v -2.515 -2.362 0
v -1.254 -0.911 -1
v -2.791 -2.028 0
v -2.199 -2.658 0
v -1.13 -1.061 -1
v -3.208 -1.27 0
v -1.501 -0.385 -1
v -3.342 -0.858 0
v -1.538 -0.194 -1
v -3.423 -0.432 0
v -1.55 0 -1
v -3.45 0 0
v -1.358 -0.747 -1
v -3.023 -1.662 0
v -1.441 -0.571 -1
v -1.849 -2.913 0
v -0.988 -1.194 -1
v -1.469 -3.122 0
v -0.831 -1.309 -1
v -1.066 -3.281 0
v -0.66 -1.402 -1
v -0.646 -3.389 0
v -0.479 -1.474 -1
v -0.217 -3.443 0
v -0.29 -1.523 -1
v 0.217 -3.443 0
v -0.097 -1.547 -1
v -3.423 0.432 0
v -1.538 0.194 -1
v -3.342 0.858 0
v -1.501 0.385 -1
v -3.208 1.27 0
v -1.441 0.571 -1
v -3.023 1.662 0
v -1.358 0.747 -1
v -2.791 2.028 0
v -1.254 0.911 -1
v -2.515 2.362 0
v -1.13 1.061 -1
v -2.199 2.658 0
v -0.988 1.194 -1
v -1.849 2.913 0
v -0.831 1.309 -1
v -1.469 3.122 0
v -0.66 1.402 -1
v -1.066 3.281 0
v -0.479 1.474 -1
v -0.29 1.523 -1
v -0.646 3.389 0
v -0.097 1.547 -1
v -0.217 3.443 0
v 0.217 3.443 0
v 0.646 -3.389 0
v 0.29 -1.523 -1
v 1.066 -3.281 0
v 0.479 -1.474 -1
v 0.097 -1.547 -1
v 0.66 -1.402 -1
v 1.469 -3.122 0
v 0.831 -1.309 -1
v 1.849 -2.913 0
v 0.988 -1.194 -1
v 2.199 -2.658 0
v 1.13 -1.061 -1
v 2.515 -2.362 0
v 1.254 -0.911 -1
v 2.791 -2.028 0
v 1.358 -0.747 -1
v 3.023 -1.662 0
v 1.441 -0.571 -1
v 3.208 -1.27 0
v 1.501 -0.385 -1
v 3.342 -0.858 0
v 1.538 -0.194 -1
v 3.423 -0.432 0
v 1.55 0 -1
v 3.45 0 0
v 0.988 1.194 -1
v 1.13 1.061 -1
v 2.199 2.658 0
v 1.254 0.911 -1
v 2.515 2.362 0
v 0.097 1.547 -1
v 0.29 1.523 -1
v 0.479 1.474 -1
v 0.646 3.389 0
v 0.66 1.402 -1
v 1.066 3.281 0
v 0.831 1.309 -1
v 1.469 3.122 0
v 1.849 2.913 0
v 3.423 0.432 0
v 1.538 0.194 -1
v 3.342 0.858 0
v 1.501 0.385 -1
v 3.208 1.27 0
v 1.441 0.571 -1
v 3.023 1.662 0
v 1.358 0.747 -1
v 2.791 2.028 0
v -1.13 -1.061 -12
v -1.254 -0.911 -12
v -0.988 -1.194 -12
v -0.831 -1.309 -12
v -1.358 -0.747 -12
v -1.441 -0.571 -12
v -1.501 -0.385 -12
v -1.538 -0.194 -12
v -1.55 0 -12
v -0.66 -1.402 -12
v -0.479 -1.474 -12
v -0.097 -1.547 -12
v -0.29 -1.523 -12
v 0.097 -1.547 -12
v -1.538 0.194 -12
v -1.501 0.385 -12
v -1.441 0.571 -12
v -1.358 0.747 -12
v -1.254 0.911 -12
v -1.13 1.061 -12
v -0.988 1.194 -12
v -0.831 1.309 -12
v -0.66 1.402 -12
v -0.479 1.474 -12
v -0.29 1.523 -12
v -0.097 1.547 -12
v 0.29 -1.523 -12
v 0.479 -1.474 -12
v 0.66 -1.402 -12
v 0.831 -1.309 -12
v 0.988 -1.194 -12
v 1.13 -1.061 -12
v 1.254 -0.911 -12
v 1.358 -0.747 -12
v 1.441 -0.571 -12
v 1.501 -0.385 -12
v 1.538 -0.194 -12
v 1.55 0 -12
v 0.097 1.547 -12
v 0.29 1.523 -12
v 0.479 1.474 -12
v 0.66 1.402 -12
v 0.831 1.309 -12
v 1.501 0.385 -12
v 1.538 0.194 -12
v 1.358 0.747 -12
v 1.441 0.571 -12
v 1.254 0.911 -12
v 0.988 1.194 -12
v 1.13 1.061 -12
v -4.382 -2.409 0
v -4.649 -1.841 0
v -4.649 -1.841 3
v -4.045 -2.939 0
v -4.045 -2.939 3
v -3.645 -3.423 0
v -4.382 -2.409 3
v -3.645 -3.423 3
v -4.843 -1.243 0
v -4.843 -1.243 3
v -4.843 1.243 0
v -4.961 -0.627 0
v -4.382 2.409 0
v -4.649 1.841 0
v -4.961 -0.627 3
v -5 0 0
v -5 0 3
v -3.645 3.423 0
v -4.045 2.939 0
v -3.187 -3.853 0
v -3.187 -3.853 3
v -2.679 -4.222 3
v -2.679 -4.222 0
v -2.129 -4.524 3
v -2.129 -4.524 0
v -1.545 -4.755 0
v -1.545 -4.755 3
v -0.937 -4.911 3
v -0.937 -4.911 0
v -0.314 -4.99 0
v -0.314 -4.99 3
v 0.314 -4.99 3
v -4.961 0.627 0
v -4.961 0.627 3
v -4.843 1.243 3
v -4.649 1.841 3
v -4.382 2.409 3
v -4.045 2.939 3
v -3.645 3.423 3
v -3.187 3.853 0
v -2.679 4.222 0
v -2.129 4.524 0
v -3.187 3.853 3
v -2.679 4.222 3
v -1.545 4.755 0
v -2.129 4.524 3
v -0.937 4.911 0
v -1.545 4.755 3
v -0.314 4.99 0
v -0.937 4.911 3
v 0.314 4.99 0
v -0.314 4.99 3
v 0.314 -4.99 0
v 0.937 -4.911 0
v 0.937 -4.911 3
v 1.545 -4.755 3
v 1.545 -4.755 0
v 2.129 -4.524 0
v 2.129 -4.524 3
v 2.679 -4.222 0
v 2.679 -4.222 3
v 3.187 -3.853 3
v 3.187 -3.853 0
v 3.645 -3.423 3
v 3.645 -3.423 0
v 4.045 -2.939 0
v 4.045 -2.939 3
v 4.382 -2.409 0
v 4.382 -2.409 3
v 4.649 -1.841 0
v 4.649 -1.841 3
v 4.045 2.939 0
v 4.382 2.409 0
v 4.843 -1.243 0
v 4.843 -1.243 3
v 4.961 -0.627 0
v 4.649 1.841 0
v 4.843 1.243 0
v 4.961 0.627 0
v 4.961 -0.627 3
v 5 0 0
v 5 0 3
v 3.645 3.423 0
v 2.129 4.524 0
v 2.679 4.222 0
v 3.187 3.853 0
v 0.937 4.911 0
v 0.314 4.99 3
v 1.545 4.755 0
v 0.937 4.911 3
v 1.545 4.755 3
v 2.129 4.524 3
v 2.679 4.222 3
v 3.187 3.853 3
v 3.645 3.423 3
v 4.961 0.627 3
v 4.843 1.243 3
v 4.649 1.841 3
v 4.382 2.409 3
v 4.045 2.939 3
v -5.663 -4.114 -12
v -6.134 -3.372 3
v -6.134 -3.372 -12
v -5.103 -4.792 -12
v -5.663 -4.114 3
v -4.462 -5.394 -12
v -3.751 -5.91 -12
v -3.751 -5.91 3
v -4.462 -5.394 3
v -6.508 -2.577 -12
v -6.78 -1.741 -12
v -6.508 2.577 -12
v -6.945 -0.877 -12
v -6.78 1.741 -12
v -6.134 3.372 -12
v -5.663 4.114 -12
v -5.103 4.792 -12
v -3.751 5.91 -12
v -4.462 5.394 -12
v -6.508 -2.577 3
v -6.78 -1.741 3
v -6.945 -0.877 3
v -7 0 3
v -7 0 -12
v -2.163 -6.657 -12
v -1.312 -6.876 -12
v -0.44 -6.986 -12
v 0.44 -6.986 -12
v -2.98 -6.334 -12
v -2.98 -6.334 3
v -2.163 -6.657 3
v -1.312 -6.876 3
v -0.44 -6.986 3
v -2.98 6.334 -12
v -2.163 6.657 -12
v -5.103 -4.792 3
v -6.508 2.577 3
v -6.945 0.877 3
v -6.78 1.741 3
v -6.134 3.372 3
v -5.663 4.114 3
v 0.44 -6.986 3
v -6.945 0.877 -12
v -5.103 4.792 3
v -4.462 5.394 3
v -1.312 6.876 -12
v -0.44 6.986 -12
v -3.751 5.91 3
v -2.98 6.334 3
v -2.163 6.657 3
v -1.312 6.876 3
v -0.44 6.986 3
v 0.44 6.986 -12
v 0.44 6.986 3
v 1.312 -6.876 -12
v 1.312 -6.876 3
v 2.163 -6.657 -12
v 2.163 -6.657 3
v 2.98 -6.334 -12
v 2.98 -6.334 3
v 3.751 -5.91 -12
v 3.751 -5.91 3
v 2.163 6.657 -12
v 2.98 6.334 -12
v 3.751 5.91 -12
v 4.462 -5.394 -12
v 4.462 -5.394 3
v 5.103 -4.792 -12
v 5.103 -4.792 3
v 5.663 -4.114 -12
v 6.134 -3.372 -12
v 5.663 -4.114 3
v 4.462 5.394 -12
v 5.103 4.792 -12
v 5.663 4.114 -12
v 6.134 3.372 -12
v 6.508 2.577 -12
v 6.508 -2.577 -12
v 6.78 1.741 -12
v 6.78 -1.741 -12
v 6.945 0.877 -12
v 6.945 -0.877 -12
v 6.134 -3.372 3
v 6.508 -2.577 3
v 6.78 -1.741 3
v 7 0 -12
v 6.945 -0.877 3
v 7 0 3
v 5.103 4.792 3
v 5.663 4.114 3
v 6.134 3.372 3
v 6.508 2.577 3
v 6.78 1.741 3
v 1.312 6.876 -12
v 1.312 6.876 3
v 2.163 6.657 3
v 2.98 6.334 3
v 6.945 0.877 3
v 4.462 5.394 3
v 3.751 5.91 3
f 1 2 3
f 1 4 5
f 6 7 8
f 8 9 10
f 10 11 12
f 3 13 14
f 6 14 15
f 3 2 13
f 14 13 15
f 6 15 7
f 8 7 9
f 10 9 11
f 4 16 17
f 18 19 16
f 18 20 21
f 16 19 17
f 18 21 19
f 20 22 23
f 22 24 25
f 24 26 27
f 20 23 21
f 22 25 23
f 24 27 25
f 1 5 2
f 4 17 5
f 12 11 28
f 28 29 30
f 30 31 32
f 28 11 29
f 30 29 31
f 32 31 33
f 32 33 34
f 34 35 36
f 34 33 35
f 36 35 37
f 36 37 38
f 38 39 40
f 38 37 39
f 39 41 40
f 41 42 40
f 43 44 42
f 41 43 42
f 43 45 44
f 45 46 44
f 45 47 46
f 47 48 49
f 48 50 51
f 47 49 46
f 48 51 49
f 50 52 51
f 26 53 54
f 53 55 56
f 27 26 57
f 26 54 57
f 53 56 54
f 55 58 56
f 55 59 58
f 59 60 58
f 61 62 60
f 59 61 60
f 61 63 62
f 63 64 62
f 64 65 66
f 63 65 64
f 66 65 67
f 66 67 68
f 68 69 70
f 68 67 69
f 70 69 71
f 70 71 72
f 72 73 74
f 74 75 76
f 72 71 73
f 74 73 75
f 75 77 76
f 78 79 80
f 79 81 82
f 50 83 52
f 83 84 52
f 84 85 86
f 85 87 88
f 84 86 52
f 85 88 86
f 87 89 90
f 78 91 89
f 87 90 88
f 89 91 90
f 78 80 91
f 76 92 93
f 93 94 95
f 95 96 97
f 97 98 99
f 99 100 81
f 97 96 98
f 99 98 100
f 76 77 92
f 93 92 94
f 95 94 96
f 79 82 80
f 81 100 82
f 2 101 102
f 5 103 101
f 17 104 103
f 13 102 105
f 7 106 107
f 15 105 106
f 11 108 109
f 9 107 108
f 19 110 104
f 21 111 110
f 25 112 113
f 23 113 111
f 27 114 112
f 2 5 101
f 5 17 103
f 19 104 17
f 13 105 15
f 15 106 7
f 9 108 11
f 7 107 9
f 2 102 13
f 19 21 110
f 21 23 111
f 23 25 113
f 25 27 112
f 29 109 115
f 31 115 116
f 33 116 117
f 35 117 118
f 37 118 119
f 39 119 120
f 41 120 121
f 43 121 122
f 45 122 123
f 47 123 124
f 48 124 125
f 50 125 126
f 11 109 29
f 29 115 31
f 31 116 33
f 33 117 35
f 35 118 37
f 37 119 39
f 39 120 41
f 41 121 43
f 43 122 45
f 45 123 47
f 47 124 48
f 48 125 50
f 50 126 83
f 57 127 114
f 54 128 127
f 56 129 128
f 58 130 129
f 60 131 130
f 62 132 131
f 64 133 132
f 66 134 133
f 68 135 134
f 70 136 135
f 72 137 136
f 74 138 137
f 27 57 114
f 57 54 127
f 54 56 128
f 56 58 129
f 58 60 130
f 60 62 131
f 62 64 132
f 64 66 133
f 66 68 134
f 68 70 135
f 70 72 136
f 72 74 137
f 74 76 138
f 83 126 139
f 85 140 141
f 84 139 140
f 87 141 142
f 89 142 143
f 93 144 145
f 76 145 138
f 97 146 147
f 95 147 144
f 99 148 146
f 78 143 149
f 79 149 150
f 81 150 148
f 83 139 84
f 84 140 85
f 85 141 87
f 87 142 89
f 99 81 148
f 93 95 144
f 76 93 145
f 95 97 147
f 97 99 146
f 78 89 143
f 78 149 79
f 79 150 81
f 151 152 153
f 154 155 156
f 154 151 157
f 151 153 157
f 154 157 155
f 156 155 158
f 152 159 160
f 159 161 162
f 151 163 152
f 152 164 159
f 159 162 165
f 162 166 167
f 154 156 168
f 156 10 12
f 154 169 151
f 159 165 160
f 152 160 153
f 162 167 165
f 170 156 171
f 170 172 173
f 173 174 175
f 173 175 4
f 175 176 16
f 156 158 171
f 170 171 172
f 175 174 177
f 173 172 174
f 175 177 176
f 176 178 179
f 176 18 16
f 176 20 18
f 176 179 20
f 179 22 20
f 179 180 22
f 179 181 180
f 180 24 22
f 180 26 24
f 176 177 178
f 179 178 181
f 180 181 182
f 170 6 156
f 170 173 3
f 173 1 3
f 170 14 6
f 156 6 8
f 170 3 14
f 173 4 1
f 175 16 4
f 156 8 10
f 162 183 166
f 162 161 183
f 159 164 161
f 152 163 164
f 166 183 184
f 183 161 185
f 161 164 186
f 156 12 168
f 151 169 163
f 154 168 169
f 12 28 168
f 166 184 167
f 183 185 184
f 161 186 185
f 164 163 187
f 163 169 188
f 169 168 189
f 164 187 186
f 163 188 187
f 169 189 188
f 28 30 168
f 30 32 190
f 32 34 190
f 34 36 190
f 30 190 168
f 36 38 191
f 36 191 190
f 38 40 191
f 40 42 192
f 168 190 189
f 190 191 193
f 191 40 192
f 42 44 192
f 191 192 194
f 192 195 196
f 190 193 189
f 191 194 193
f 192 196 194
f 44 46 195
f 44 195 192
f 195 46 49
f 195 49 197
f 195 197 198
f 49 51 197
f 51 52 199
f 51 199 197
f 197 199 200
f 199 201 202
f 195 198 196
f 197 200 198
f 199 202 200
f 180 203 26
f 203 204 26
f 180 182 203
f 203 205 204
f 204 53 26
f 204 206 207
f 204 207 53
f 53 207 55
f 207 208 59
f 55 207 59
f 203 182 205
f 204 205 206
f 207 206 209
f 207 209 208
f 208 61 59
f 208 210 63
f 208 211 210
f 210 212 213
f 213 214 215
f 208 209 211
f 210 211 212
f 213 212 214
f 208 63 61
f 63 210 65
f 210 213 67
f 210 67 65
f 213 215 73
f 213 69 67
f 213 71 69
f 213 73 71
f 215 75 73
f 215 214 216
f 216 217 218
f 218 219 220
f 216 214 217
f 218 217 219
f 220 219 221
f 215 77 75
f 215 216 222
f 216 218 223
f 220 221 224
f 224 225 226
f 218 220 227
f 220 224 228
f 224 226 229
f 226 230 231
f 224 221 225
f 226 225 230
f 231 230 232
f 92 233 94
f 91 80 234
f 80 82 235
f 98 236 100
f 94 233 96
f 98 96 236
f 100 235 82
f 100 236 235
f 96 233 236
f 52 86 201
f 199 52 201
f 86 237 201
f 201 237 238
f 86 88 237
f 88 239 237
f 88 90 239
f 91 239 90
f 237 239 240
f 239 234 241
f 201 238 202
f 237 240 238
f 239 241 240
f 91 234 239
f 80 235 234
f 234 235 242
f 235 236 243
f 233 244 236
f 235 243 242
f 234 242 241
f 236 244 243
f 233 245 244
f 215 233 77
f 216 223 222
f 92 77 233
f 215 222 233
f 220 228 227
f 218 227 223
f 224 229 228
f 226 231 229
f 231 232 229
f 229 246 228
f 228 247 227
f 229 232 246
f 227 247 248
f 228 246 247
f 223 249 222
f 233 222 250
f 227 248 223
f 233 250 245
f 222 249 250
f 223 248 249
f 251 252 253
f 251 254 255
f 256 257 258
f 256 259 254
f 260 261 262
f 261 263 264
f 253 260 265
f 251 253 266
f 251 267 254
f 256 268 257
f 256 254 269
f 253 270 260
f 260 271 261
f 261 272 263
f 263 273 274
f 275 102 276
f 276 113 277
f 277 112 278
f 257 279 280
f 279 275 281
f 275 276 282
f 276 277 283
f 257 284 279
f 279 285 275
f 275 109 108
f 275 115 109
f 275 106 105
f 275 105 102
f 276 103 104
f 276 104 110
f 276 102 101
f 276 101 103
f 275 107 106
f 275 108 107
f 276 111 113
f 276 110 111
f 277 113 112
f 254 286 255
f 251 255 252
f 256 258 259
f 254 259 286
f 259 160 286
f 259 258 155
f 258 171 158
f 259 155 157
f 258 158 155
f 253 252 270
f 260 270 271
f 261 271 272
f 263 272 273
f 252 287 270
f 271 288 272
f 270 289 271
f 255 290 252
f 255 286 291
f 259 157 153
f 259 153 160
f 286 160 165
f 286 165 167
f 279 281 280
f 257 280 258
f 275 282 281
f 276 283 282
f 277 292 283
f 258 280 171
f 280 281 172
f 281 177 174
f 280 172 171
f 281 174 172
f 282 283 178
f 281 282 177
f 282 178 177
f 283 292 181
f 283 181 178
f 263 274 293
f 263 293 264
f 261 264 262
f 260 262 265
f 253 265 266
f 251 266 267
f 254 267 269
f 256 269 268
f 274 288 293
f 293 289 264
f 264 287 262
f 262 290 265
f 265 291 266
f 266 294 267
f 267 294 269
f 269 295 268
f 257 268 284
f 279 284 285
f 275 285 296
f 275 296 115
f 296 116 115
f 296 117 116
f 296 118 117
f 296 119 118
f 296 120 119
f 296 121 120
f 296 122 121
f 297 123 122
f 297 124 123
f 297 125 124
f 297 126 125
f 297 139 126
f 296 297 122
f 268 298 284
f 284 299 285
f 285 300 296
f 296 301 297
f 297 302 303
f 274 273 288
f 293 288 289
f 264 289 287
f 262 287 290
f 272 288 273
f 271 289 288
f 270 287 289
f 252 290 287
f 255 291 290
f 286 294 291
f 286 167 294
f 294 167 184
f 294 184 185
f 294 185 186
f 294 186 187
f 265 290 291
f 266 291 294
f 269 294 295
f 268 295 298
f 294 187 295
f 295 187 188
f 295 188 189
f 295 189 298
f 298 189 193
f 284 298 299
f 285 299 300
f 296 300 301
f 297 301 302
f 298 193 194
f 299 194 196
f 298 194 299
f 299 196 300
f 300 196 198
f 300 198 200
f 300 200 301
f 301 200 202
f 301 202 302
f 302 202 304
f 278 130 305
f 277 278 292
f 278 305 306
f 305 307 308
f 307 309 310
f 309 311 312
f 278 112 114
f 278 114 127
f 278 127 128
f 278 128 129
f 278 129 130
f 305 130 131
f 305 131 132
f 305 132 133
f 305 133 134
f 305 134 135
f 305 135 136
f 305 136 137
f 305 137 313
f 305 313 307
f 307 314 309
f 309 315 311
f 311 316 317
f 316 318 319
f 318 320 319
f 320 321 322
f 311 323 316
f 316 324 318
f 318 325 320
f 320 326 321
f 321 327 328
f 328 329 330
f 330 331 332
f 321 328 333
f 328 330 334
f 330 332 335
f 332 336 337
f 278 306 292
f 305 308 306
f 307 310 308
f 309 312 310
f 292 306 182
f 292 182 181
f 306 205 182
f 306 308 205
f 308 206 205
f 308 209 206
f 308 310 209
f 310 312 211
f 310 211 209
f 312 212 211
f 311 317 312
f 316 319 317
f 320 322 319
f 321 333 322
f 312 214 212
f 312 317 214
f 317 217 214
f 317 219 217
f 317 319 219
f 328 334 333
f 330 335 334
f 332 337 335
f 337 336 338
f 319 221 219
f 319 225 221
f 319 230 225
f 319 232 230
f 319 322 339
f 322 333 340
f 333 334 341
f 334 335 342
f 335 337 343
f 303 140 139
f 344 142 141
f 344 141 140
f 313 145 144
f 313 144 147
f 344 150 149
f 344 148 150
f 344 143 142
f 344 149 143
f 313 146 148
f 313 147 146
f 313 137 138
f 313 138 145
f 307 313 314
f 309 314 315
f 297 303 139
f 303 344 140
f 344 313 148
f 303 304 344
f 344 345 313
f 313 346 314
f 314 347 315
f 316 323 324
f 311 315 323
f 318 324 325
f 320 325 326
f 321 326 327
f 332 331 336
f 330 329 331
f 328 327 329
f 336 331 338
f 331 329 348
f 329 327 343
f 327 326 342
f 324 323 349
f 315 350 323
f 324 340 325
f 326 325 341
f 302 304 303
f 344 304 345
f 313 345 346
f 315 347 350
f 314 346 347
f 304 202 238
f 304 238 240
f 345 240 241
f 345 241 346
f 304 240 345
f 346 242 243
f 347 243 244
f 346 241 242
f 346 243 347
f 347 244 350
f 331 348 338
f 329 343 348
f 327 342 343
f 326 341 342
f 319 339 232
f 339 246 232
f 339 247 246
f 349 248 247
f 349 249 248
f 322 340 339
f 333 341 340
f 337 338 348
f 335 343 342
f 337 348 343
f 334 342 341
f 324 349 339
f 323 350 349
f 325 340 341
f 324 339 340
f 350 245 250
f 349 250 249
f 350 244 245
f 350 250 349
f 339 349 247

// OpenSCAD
$fn = 50;

difference() {
	union() {
		translate(v = [0, 0, -12.0]) {
			cylinder(h = 15, r = 7.0);
		}
	}
	union() {
		translate(v = [0, 0, 0]) {
			rotate(a = [0, 0, 0]) {
				difference() {
					union() {
						translate(v = [0, 0, -15.0]) {
							cylinder(h = 15, r = 1.25);
						}
						translate(v = [0, 0, -1.0]) {
							cylinder(h = 1.0, r1 = 1.55, r2 = 3.45);
						}
						translate(v = [0, 0, -15.0]) {
							cylinder(h = 15, r = 1.55);
						}
						translate(v = [0, 0, -15.0]) {
							cylinder(h = 15, r = 1.25);
						}
					}
					union();
				}
			}
		}
		#cylinder(h = 3, r = 5.0);
	}
}
